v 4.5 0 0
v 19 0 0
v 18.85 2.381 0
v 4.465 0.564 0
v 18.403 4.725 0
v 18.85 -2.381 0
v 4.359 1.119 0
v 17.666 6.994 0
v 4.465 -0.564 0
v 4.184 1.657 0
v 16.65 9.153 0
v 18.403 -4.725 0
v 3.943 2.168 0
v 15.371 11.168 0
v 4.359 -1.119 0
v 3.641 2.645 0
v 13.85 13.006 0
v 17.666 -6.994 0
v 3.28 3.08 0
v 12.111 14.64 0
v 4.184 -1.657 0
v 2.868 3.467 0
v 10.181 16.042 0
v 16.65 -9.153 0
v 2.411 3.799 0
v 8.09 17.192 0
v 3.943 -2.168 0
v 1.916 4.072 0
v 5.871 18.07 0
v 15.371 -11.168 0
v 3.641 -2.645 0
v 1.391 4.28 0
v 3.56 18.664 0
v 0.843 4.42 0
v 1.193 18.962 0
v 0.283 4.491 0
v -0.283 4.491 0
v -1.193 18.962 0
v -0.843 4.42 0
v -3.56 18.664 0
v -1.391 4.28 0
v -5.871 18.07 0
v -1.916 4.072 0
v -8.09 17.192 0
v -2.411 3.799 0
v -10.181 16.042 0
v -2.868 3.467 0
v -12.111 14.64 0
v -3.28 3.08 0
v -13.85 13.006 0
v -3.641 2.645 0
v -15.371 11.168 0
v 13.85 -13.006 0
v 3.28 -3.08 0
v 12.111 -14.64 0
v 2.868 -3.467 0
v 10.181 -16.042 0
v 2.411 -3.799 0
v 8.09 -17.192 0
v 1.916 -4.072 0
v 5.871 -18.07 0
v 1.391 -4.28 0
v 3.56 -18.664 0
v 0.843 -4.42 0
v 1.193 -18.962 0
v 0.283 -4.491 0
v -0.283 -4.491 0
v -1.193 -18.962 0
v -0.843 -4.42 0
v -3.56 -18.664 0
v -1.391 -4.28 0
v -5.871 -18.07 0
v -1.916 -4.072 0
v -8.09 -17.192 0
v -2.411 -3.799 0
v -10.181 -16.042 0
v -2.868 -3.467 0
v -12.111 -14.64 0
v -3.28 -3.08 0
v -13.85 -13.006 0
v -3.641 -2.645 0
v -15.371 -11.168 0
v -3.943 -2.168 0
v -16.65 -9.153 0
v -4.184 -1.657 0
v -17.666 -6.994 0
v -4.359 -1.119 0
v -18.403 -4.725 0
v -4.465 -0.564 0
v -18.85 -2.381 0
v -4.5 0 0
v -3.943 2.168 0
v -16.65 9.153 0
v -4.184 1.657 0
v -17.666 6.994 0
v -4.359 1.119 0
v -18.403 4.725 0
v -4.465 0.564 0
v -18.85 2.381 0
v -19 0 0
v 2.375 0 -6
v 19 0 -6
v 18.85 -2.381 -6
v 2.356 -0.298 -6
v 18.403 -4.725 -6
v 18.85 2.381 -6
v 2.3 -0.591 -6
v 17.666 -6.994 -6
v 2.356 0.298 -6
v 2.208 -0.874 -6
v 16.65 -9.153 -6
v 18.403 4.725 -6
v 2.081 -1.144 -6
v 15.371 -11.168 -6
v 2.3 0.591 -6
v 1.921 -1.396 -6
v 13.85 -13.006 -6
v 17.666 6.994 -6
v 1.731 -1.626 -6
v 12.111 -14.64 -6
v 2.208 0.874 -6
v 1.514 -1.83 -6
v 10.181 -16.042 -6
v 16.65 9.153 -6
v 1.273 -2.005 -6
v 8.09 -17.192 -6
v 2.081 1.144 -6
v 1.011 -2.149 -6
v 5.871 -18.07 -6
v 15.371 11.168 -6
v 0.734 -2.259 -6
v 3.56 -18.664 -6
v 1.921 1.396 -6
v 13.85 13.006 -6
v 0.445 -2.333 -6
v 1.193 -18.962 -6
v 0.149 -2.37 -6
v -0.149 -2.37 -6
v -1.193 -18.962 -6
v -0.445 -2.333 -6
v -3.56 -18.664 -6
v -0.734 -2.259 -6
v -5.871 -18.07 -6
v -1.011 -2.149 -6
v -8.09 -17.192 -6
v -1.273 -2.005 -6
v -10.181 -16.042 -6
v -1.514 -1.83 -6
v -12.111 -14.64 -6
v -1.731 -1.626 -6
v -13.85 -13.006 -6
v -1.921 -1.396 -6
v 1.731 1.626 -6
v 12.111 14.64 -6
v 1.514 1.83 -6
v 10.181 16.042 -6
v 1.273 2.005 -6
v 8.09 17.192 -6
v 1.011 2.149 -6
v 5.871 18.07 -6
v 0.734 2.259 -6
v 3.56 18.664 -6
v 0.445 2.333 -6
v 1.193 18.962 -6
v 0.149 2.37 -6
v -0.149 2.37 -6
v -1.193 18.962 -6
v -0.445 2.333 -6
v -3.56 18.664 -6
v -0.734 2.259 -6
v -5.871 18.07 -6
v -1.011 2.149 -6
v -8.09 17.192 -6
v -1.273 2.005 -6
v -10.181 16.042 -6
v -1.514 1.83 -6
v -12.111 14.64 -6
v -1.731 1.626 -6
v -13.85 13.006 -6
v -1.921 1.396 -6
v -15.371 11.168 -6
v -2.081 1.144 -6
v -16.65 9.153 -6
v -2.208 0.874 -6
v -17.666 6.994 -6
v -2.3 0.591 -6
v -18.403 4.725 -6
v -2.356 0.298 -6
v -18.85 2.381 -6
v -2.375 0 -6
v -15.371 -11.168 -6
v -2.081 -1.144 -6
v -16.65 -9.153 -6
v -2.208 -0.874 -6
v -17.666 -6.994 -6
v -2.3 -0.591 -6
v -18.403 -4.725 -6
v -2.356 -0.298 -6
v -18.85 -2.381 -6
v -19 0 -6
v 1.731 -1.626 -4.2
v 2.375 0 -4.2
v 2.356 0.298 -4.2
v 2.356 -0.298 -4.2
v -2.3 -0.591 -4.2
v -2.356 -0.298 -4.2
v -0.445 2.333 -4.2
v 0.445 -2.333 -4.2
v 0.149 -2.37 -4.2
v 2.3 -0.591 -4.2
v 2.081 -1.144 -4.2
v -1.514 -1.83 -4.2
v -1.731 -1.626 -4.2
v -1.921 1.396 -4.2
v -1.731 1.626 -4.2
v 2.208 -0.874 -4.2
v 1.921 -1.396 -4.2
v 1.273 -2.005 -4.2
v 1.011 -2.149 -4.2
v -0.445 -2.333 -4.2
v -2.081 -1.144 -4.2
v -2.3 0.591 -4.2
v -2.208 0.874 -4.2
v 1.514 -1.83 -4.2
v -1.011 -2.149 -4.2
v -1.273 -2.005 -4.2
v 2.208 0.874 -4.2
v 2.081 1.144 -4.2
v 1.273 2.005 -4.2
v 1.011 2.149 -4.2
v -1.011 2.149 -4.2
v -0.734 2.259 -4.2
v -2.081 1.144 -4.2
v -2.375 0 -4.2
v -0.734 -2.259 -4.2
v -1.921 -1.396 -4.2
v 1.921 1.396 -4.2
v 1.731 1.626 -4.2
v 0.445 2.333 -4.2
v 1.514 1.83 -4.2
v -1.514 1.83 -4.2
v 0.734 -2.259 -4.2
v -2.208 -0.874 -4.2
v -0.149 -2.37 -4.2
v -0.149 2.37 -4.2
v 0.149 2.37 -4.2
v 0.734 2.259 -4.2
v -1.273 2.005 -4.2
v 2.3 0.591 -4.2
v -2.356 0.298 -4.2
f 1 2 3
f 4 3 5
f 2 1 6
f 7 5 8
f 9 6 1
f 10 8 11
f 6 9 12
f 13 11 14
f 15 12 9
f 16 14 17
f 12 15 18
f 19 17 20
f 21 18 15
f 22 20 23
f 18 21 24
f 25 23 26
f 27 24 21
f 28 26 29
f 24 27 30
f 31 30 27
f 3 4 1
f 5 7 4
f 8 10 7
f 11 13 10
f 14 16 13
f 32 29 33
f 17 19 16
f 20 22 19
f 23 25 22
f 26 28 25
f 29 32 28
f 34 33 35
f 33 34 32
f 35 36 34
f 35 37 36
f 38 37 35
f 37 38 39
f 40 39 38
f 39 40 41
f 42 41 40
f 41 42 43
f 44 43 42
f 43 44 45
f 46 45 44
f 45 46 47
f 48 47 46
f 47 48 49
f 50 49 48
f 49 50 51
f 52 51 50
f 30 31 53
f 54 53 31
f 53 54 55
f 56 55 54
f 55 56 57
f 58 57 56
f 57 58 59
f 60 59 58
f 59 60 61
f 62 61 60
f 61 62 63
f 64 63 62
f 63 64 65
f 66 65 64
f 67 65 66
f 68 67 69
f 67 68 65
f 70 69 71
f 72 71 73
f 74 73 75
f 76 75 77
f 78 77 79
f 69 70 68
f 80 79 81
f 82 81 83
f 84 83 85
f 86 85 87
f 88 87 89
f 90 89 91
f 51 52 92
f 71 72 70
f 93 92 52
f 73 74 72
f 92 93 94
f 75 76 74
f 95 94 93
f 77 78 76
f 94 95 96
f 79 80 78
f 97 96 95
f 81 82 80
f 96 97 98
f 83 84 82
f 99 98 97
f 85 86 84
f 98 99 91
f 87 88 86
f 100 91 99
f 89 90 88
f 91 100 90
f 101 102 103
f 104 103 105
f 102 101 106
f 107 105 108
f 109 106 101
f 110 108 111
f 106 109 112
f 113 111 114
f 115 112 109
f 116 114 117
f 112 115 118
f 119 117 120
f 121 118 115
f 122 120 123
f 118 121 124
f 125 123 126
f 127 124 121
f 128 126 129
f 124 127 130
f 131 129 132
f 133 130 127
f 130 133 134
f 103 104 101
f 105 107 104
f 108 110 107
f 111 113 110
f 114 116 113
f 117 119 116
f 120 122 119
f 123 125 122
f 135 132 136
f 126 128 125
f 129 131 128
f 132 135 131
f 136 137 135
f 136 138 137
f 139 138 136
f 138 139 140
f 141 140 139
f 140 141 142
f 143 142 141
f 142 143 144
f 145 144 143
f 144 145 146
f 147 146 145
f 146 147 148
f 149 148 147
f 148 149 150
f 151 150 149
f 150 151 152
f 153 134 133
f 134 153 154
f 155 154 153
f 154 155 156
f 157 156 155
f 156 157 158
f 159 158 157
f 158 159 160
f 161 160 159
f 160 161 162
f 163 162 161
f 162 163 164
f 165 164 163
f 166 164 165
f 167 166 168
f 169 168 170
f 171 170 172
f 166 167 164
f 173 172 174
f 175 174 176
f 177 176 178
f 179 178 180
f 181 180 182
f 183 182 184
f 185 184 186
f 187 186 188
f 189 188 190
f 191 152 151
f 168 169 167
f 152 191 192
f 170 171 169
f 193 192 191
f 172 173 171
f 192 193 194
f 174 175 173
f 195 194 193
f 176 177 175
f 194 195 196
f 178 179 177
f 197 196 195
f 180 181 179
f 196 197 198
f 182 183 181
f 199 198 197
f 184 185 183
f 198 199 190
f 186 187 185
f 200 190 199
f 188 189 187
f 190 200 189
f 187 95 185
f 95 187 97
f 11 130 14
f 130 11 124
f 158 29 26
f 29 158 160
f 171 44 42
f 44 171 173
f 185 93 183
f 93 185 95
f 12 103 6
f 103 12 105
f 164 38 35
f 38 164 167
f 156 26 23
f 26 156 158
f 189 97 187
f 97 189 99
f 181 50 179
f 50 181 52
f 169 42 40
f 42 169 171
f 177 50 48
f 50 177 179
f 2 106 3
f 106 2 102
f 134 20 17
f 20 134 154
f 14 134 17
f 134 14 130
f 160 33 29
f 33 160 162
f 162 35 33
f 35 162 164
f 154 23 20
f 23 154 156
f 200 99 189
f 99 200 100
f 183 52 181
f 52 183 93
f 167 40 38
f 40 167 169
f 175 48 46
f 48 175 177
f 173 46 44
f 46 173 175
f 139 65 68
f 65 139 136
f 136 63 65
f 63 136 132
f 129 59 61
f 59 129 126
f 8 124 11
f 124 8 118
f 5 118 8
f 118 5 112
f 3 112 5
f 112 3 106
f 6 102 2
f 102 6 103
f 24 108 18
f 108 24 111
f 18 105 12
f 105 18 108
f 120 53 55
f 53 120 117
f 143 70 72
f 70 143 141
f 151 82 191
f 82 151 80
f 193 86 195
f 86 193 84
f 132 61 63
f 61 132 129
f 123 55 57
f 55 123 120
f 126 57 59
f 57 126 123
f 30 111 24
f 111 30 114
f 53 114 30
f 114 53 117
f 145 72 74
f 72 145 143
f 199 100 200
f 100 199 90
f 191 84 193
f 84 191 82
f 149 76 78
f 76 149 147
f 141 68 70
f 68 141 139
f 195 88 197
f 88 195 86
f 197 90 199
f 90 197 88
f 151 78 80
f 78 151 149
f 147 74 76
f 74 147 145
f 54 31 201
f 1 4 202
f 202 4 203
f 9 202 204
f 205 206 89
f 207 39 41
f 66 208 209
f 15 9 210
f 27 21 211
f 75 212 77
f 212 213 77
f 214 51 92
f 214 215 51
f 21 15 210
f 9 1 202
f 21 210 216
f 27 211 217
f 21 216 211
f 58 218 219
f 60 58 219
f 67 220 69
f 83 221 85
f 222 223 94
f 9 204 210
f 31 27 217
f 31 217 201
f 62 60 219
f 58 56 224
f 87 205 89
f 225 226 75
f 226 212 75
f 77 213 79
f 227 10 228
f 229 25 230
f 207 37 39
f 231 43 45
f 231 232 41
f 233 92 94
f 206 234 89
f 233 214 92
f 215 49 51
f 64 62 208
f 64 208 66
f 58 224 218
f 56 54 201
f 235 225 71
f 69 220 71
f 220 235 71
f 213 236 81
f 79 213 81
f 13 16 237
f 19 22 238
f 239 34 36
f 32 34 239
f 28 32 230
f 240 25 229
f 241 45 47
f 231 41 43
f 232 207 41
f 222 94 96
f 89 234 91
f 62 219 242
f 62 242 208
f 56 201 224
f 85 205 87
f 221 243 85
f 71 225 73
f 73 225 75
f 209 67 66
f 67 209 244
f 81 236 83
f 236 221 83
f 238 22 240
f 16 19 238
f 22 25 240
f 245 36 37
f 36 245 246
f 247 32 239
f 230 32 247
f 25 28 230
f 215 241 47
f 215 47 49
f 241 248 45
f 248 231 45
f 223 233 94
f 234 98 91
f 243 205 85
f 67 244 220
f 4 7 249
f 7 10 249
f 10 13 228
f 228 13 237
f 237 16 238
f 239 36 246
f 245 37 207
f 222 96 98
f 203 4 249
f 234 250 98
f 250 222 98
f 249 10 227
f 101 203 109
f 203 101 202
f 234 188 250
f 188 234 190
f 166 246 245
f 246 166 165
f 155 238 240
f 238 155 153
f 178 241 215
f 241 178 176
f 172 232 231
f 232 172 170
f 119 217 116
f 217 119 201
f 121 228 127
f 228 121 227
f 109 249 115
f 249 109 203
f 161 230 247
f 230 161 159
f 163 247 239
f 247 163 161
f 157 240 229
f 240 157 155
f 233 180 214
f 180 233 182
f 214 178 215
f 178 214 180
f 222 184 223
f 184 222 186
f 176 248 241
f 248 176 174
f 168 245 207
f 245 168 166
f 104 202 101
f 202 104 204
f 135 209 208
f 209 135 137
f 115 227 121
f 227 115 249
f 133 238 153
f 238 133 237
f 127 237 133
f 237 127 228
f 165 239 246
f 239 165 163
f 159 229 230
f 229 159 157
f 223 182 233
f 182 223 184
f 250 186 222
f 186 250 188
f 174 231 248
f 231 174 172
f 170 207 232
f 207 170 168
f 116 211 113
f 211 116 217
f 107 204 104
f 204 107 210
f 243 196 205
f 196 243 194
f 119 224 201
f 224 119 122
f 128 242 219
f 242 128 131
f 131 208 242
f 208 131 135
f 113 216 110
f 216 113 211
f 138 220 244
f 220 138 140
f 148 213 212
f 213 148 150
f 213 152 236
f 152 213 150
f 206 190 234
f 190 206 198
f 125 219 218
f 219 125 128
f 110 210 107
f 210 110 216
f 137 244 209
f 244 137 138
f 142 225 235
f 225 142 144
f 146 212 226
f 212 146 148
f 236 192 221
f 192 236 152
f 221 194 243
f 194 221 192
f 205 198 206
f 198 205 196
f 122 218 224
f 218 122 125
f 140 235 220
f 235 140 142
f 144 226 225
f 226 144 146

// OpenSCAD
$fn = 50;


difference() {
	union() {
		translate(v = [0, 0, -6.0000000000]) {
			cylinder(h = 6, r = 10.0000000000);
		}
		translate(v = [0, 0, -6.0000000000]) {
			cylinder(h = 6, r = 19.0000000000);
		}
	}
	union() {
		translate(v = [0, 0, 0]) {
			rotate(a = [0, 0, 0]) {
				difference() {
					union() {
						#translate(v = [0, 0, -6.0000000000]) {
							cylinder(h = 6, r = 2.2500000000);
						}
						#translate(v = [0, 0, -4.2000000000]) {
							cylinder(h = 4.2000000000, r = 10.0000000000, r1 = 2.3750000000, r2 = 4.5000000000);
						}
						#translate(v = [0, 0, -6.0000000000]) {
							cylinder(h = 6, r = 2.3750000000);
						}
						#translate(v = [0, 0, -6.0000000000]) {
							cylinder(h = 6, r = 2.2500000000);
						}
					}
					union();
				}
			}
		}
	}
}
